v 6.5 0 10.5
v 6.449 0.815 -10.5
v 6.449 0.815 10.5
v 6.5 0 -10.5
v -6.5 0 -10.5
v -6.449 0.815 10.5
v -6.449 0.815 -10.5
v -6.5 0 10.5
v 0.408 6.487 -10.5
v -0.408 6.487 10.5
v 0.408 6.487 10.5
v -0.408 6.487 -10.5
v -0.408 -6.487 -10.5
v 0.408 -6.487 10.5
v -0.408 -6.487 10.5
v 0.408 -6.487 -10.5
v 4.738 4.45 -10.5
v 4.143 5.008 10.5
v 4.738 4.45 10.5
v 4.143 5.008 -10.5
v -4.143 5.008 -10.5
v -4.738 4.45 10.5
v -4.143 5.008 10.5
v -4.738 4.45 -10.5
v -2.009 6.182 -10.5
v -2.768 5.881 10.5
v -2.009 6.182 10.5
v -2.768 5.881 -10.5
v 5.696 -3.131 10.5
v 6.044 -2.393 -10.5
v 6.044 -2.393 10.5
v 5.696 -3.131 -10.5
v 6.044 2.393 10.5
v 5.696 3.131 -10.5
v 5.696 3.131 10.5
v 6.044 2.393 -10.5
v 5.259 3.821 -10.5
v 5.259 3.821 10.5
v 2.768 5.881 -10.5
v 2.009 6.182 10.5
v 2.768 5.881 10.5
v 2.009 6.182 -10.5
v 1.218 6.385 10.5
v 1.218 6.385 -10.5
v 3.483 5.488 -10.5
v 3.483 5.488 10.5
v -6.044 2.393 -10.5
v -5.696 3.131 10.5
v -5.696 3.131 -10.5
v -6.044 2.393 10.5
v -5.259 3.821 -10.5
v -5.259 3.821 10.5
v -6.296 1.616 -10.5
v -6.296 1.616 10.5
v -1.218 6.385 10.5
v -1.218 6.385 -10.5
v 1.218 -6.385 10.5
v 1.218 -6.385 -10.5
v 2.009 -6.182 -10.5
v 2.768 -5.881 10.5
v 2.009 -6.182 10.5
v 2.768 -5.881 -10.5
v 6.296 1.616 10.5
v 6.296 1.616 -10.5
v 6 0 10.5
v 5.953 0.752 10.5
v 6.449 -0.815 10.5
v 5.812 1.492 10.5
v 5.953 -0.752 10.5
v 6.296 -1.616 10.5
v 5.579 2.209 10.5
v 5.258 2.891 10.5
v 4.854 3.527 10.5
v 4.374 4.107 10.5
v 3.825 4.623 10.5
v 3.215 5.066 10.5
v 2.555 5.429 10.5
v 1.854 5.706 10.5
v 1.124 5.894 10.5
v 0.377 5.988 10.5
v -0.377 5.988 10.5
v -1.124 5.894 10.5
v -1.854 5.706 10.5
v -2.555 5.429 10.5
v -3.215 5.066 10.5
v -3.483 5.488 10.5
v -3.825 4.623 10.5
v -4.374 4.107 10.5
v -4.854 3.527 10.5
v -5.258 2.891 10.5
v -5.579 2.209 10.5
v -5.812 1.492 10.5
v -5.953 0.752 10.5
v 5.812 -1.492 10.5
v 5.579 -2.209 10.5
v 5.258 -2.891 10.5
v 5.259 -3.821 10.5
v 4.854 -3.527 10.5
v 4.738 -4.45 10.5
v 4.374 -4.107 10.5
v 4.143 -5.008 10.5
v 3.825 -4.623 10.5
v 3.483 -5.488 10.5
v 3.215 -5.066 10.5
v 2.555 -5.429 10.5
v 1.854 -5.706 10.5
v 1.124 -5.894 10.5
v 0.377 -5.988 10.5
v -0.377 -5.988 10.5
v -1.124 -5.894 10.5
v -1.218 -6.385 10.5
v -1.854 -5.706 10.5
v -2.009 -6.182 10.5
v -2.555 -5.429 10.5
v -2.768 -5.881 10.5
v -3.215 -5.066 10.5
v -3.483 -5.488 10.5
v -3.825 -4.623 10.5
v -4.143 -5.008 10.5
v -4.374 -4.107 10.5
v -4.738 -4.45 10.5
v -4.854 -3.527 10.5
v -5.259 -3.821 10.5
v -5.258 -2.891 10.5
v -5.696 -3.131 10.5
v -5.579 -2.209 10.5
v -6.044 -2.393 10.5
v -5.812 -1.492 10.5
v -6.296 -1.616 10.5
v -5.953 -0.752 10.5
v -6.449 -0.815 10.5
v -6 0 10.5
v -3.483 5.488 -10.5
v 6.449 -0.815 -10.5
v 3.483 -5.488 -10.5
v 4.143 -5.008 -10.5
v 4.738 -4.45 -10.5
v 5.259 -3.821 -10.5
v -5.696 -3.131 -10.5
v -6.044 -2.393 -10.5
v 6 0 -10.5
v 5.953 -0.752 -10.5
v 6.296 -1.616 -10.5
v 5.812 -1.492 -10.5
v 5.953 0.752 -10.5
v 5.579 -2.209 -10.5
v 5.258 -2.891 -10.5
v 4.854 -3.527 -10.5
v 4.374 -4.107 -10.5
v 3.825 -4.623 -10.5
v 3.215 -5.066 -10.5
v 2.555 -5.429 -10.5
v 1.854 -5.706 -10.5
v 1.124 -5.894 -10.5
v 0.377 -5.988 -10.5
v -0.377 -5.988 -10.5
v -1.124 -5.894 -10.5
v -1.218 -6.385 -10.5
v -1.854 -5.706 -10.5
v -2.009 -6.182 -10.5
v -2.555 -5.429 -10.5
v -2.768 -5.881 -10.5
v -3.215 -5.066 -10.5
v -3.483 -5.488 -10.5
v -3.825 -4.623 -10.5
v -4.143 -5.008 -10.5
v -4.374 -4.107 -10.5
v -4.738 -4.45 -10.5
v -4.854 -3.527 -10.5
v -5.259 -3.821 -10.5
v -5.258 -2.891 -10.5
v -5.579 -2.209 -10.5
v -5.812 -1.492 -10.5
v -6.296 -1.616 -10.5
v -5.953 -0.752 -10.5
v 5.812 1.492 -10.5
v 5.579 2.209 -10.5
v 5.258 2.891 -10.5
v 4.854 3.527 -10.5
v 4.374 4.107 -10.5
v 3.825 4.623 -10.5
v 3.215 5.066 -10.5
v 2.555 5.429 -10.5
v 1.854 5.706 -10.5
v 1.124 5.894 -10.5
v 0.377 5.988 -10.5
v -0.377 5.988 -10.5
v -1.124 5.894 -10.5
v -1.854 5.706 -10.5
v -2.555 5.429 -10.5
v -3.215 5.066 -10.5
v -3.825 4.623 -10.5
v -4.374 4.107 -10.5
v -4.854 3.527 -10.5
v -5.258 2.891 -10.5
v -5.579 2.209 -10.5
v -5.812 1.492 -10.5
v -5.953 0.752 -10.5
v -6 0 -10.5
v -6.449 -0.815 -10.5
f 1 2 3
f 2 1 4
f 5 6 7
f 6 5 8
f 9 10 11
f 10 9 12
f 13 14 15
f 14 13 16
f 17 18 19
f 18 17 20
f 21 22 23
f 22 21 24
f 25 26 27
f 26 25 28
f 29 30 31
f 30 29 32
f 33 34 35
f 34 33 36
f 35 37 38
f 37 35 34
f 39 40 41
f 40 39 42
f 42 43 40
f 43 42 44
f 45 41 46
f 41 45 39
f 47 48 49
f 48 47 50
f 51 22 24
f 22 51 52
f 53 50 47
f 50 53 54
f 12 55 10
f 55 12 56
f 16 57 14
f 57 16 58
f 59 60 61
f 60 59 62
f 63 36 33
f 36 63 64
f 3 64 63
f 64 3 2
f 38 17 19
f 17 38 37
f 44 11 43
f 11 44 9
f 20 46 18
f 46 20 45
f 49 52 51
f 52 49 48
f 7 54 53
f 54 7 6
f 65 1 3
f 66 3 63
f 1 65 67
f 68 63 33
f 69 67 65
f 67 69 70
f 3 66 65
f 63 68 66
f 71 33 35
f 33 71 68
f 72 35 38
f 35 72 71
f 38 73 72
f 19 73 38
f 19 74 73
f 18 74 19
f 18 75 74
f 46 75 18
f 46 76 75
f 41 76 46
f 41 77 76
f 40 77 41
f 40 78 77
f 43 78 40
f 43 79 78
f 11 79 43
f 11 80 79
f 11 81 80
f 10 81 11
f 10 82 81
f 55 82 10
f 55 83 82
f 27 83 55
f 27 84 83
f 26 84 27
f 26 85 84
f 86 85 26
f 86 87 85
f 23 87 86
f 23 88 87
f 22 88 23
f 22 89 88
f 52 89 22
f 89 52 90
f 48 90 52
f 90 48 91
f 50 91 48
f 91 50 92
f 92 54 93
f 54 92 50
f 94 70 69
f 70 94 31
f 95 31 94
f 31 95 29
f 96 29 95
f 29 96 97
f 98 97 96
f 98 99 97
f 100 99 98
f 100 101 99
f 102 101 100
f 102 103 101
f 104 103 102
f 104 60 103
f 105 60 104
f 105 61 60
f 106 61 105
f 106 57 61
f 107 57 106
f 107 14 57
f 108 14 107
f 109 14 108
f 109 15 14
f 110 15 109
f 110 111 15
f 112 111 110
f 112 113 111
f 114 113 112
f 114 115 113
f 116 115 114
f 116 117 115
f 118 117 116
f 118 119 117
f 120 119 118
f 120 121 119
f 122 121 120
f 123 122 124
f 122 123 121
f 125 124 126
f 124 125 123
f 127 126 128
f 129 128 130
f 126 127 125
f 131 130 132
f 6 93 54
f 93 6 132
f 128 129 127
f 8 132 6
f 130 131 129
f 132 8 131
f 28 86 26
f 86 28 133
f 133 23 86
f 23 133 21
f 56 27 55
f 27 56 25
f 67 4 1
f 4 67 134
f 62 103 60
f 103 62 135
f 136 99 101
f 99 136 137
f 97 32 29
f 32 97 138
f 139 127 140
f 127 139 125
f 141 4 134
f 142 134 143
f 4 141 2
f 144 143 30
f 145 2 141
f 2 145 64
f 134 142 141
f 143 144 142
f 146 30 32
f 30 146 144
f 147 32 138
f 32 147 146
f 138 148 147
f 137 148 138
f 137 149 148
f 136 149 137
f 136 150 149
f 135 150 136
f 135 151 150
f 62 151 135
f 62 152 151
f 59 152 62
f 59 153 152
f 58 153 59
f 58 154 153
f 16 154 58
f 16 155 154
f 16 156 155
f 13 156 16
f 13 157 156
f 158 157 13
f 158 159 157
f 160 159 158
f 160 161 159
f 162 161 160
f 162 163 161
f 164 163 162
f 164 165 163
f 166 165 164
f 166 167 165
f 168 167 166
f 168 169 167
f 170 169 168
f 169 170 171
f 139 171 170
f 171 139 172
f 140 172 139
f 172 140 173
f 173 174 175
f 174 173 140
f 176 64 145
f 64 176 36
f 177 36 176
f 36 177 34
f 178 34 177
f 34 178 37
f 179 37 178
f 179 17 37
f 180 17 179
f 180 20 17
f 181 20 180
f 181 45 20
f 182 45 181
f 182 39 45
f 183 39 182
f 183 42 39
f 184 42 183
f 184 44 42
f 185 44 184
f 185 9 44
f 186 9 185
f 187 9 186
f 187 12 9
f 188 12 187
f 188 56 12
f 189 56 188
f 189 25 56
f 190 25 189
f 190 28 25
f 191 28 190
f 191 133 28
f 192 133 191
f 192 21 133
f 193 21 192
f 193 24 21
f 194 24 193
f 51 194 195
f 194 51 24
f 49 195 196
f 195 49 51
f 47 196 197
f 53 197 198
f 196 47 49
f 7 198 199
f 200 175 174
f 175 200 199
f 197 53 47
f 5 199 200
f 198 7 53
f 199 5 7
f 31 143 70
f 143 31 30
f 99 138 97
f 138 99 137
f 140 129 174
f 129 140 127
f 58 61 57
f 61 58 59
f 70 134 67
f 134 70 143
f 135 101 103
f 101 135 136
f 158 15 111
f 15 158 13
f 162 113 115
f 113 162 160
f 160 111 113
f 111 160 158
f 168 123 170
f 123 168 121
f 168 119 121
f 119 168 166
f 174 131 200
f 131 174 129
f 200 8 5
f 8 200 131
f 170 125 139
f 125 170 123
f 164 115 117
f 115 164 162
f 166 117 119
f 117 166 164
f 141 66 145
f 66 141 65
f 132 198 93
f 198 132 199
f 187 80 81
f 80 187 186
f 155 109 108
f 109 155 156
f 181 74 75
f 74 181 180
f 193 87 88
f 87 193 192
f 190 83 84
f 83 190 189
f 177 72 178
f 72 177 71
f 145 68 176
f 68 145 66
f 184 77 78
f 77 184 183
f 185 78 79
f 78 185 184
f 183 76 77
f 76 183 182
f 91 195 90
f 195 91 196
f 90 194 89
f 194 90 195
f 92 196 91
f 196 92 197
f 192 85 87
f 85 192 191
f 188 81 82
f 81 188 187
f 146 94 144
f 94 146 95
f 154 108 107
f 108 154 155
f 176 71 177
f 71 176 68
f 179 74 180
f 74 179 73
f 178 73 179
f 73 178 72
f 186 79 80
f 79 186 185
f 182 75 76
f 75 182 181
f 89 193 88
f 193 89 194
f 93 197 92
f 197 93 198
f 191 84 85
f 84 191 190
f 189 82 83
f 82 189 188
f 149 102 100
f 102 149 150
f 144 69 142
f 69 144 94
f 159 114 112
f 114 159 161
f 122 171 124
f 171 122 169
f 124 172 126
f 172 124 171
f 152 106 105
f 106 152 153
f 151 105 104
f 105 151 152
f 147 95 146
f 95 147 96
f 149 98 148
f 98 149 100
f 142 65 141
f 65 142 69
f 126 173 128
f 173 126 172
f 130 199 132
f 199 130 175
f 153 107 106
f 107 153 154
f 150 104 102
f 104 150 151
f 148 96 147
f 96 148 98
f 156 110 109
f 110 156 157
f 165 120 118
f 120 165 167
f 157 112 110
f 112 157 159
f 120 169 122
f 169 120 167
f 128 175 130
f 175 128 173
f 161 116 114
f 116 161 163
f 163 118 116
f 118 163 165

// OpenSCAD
$fn = 50;


difference() {
	union() {
		translate(v = [0, 0, -10.5000000000]) {
			cylinder(h = 21, r = 6.5000000000);
		}
	}
	union() {
		translate(v = [0, 0, -100.0000000000]) {
			cylinder(h = 200, r = 6);
		}
	}
}
